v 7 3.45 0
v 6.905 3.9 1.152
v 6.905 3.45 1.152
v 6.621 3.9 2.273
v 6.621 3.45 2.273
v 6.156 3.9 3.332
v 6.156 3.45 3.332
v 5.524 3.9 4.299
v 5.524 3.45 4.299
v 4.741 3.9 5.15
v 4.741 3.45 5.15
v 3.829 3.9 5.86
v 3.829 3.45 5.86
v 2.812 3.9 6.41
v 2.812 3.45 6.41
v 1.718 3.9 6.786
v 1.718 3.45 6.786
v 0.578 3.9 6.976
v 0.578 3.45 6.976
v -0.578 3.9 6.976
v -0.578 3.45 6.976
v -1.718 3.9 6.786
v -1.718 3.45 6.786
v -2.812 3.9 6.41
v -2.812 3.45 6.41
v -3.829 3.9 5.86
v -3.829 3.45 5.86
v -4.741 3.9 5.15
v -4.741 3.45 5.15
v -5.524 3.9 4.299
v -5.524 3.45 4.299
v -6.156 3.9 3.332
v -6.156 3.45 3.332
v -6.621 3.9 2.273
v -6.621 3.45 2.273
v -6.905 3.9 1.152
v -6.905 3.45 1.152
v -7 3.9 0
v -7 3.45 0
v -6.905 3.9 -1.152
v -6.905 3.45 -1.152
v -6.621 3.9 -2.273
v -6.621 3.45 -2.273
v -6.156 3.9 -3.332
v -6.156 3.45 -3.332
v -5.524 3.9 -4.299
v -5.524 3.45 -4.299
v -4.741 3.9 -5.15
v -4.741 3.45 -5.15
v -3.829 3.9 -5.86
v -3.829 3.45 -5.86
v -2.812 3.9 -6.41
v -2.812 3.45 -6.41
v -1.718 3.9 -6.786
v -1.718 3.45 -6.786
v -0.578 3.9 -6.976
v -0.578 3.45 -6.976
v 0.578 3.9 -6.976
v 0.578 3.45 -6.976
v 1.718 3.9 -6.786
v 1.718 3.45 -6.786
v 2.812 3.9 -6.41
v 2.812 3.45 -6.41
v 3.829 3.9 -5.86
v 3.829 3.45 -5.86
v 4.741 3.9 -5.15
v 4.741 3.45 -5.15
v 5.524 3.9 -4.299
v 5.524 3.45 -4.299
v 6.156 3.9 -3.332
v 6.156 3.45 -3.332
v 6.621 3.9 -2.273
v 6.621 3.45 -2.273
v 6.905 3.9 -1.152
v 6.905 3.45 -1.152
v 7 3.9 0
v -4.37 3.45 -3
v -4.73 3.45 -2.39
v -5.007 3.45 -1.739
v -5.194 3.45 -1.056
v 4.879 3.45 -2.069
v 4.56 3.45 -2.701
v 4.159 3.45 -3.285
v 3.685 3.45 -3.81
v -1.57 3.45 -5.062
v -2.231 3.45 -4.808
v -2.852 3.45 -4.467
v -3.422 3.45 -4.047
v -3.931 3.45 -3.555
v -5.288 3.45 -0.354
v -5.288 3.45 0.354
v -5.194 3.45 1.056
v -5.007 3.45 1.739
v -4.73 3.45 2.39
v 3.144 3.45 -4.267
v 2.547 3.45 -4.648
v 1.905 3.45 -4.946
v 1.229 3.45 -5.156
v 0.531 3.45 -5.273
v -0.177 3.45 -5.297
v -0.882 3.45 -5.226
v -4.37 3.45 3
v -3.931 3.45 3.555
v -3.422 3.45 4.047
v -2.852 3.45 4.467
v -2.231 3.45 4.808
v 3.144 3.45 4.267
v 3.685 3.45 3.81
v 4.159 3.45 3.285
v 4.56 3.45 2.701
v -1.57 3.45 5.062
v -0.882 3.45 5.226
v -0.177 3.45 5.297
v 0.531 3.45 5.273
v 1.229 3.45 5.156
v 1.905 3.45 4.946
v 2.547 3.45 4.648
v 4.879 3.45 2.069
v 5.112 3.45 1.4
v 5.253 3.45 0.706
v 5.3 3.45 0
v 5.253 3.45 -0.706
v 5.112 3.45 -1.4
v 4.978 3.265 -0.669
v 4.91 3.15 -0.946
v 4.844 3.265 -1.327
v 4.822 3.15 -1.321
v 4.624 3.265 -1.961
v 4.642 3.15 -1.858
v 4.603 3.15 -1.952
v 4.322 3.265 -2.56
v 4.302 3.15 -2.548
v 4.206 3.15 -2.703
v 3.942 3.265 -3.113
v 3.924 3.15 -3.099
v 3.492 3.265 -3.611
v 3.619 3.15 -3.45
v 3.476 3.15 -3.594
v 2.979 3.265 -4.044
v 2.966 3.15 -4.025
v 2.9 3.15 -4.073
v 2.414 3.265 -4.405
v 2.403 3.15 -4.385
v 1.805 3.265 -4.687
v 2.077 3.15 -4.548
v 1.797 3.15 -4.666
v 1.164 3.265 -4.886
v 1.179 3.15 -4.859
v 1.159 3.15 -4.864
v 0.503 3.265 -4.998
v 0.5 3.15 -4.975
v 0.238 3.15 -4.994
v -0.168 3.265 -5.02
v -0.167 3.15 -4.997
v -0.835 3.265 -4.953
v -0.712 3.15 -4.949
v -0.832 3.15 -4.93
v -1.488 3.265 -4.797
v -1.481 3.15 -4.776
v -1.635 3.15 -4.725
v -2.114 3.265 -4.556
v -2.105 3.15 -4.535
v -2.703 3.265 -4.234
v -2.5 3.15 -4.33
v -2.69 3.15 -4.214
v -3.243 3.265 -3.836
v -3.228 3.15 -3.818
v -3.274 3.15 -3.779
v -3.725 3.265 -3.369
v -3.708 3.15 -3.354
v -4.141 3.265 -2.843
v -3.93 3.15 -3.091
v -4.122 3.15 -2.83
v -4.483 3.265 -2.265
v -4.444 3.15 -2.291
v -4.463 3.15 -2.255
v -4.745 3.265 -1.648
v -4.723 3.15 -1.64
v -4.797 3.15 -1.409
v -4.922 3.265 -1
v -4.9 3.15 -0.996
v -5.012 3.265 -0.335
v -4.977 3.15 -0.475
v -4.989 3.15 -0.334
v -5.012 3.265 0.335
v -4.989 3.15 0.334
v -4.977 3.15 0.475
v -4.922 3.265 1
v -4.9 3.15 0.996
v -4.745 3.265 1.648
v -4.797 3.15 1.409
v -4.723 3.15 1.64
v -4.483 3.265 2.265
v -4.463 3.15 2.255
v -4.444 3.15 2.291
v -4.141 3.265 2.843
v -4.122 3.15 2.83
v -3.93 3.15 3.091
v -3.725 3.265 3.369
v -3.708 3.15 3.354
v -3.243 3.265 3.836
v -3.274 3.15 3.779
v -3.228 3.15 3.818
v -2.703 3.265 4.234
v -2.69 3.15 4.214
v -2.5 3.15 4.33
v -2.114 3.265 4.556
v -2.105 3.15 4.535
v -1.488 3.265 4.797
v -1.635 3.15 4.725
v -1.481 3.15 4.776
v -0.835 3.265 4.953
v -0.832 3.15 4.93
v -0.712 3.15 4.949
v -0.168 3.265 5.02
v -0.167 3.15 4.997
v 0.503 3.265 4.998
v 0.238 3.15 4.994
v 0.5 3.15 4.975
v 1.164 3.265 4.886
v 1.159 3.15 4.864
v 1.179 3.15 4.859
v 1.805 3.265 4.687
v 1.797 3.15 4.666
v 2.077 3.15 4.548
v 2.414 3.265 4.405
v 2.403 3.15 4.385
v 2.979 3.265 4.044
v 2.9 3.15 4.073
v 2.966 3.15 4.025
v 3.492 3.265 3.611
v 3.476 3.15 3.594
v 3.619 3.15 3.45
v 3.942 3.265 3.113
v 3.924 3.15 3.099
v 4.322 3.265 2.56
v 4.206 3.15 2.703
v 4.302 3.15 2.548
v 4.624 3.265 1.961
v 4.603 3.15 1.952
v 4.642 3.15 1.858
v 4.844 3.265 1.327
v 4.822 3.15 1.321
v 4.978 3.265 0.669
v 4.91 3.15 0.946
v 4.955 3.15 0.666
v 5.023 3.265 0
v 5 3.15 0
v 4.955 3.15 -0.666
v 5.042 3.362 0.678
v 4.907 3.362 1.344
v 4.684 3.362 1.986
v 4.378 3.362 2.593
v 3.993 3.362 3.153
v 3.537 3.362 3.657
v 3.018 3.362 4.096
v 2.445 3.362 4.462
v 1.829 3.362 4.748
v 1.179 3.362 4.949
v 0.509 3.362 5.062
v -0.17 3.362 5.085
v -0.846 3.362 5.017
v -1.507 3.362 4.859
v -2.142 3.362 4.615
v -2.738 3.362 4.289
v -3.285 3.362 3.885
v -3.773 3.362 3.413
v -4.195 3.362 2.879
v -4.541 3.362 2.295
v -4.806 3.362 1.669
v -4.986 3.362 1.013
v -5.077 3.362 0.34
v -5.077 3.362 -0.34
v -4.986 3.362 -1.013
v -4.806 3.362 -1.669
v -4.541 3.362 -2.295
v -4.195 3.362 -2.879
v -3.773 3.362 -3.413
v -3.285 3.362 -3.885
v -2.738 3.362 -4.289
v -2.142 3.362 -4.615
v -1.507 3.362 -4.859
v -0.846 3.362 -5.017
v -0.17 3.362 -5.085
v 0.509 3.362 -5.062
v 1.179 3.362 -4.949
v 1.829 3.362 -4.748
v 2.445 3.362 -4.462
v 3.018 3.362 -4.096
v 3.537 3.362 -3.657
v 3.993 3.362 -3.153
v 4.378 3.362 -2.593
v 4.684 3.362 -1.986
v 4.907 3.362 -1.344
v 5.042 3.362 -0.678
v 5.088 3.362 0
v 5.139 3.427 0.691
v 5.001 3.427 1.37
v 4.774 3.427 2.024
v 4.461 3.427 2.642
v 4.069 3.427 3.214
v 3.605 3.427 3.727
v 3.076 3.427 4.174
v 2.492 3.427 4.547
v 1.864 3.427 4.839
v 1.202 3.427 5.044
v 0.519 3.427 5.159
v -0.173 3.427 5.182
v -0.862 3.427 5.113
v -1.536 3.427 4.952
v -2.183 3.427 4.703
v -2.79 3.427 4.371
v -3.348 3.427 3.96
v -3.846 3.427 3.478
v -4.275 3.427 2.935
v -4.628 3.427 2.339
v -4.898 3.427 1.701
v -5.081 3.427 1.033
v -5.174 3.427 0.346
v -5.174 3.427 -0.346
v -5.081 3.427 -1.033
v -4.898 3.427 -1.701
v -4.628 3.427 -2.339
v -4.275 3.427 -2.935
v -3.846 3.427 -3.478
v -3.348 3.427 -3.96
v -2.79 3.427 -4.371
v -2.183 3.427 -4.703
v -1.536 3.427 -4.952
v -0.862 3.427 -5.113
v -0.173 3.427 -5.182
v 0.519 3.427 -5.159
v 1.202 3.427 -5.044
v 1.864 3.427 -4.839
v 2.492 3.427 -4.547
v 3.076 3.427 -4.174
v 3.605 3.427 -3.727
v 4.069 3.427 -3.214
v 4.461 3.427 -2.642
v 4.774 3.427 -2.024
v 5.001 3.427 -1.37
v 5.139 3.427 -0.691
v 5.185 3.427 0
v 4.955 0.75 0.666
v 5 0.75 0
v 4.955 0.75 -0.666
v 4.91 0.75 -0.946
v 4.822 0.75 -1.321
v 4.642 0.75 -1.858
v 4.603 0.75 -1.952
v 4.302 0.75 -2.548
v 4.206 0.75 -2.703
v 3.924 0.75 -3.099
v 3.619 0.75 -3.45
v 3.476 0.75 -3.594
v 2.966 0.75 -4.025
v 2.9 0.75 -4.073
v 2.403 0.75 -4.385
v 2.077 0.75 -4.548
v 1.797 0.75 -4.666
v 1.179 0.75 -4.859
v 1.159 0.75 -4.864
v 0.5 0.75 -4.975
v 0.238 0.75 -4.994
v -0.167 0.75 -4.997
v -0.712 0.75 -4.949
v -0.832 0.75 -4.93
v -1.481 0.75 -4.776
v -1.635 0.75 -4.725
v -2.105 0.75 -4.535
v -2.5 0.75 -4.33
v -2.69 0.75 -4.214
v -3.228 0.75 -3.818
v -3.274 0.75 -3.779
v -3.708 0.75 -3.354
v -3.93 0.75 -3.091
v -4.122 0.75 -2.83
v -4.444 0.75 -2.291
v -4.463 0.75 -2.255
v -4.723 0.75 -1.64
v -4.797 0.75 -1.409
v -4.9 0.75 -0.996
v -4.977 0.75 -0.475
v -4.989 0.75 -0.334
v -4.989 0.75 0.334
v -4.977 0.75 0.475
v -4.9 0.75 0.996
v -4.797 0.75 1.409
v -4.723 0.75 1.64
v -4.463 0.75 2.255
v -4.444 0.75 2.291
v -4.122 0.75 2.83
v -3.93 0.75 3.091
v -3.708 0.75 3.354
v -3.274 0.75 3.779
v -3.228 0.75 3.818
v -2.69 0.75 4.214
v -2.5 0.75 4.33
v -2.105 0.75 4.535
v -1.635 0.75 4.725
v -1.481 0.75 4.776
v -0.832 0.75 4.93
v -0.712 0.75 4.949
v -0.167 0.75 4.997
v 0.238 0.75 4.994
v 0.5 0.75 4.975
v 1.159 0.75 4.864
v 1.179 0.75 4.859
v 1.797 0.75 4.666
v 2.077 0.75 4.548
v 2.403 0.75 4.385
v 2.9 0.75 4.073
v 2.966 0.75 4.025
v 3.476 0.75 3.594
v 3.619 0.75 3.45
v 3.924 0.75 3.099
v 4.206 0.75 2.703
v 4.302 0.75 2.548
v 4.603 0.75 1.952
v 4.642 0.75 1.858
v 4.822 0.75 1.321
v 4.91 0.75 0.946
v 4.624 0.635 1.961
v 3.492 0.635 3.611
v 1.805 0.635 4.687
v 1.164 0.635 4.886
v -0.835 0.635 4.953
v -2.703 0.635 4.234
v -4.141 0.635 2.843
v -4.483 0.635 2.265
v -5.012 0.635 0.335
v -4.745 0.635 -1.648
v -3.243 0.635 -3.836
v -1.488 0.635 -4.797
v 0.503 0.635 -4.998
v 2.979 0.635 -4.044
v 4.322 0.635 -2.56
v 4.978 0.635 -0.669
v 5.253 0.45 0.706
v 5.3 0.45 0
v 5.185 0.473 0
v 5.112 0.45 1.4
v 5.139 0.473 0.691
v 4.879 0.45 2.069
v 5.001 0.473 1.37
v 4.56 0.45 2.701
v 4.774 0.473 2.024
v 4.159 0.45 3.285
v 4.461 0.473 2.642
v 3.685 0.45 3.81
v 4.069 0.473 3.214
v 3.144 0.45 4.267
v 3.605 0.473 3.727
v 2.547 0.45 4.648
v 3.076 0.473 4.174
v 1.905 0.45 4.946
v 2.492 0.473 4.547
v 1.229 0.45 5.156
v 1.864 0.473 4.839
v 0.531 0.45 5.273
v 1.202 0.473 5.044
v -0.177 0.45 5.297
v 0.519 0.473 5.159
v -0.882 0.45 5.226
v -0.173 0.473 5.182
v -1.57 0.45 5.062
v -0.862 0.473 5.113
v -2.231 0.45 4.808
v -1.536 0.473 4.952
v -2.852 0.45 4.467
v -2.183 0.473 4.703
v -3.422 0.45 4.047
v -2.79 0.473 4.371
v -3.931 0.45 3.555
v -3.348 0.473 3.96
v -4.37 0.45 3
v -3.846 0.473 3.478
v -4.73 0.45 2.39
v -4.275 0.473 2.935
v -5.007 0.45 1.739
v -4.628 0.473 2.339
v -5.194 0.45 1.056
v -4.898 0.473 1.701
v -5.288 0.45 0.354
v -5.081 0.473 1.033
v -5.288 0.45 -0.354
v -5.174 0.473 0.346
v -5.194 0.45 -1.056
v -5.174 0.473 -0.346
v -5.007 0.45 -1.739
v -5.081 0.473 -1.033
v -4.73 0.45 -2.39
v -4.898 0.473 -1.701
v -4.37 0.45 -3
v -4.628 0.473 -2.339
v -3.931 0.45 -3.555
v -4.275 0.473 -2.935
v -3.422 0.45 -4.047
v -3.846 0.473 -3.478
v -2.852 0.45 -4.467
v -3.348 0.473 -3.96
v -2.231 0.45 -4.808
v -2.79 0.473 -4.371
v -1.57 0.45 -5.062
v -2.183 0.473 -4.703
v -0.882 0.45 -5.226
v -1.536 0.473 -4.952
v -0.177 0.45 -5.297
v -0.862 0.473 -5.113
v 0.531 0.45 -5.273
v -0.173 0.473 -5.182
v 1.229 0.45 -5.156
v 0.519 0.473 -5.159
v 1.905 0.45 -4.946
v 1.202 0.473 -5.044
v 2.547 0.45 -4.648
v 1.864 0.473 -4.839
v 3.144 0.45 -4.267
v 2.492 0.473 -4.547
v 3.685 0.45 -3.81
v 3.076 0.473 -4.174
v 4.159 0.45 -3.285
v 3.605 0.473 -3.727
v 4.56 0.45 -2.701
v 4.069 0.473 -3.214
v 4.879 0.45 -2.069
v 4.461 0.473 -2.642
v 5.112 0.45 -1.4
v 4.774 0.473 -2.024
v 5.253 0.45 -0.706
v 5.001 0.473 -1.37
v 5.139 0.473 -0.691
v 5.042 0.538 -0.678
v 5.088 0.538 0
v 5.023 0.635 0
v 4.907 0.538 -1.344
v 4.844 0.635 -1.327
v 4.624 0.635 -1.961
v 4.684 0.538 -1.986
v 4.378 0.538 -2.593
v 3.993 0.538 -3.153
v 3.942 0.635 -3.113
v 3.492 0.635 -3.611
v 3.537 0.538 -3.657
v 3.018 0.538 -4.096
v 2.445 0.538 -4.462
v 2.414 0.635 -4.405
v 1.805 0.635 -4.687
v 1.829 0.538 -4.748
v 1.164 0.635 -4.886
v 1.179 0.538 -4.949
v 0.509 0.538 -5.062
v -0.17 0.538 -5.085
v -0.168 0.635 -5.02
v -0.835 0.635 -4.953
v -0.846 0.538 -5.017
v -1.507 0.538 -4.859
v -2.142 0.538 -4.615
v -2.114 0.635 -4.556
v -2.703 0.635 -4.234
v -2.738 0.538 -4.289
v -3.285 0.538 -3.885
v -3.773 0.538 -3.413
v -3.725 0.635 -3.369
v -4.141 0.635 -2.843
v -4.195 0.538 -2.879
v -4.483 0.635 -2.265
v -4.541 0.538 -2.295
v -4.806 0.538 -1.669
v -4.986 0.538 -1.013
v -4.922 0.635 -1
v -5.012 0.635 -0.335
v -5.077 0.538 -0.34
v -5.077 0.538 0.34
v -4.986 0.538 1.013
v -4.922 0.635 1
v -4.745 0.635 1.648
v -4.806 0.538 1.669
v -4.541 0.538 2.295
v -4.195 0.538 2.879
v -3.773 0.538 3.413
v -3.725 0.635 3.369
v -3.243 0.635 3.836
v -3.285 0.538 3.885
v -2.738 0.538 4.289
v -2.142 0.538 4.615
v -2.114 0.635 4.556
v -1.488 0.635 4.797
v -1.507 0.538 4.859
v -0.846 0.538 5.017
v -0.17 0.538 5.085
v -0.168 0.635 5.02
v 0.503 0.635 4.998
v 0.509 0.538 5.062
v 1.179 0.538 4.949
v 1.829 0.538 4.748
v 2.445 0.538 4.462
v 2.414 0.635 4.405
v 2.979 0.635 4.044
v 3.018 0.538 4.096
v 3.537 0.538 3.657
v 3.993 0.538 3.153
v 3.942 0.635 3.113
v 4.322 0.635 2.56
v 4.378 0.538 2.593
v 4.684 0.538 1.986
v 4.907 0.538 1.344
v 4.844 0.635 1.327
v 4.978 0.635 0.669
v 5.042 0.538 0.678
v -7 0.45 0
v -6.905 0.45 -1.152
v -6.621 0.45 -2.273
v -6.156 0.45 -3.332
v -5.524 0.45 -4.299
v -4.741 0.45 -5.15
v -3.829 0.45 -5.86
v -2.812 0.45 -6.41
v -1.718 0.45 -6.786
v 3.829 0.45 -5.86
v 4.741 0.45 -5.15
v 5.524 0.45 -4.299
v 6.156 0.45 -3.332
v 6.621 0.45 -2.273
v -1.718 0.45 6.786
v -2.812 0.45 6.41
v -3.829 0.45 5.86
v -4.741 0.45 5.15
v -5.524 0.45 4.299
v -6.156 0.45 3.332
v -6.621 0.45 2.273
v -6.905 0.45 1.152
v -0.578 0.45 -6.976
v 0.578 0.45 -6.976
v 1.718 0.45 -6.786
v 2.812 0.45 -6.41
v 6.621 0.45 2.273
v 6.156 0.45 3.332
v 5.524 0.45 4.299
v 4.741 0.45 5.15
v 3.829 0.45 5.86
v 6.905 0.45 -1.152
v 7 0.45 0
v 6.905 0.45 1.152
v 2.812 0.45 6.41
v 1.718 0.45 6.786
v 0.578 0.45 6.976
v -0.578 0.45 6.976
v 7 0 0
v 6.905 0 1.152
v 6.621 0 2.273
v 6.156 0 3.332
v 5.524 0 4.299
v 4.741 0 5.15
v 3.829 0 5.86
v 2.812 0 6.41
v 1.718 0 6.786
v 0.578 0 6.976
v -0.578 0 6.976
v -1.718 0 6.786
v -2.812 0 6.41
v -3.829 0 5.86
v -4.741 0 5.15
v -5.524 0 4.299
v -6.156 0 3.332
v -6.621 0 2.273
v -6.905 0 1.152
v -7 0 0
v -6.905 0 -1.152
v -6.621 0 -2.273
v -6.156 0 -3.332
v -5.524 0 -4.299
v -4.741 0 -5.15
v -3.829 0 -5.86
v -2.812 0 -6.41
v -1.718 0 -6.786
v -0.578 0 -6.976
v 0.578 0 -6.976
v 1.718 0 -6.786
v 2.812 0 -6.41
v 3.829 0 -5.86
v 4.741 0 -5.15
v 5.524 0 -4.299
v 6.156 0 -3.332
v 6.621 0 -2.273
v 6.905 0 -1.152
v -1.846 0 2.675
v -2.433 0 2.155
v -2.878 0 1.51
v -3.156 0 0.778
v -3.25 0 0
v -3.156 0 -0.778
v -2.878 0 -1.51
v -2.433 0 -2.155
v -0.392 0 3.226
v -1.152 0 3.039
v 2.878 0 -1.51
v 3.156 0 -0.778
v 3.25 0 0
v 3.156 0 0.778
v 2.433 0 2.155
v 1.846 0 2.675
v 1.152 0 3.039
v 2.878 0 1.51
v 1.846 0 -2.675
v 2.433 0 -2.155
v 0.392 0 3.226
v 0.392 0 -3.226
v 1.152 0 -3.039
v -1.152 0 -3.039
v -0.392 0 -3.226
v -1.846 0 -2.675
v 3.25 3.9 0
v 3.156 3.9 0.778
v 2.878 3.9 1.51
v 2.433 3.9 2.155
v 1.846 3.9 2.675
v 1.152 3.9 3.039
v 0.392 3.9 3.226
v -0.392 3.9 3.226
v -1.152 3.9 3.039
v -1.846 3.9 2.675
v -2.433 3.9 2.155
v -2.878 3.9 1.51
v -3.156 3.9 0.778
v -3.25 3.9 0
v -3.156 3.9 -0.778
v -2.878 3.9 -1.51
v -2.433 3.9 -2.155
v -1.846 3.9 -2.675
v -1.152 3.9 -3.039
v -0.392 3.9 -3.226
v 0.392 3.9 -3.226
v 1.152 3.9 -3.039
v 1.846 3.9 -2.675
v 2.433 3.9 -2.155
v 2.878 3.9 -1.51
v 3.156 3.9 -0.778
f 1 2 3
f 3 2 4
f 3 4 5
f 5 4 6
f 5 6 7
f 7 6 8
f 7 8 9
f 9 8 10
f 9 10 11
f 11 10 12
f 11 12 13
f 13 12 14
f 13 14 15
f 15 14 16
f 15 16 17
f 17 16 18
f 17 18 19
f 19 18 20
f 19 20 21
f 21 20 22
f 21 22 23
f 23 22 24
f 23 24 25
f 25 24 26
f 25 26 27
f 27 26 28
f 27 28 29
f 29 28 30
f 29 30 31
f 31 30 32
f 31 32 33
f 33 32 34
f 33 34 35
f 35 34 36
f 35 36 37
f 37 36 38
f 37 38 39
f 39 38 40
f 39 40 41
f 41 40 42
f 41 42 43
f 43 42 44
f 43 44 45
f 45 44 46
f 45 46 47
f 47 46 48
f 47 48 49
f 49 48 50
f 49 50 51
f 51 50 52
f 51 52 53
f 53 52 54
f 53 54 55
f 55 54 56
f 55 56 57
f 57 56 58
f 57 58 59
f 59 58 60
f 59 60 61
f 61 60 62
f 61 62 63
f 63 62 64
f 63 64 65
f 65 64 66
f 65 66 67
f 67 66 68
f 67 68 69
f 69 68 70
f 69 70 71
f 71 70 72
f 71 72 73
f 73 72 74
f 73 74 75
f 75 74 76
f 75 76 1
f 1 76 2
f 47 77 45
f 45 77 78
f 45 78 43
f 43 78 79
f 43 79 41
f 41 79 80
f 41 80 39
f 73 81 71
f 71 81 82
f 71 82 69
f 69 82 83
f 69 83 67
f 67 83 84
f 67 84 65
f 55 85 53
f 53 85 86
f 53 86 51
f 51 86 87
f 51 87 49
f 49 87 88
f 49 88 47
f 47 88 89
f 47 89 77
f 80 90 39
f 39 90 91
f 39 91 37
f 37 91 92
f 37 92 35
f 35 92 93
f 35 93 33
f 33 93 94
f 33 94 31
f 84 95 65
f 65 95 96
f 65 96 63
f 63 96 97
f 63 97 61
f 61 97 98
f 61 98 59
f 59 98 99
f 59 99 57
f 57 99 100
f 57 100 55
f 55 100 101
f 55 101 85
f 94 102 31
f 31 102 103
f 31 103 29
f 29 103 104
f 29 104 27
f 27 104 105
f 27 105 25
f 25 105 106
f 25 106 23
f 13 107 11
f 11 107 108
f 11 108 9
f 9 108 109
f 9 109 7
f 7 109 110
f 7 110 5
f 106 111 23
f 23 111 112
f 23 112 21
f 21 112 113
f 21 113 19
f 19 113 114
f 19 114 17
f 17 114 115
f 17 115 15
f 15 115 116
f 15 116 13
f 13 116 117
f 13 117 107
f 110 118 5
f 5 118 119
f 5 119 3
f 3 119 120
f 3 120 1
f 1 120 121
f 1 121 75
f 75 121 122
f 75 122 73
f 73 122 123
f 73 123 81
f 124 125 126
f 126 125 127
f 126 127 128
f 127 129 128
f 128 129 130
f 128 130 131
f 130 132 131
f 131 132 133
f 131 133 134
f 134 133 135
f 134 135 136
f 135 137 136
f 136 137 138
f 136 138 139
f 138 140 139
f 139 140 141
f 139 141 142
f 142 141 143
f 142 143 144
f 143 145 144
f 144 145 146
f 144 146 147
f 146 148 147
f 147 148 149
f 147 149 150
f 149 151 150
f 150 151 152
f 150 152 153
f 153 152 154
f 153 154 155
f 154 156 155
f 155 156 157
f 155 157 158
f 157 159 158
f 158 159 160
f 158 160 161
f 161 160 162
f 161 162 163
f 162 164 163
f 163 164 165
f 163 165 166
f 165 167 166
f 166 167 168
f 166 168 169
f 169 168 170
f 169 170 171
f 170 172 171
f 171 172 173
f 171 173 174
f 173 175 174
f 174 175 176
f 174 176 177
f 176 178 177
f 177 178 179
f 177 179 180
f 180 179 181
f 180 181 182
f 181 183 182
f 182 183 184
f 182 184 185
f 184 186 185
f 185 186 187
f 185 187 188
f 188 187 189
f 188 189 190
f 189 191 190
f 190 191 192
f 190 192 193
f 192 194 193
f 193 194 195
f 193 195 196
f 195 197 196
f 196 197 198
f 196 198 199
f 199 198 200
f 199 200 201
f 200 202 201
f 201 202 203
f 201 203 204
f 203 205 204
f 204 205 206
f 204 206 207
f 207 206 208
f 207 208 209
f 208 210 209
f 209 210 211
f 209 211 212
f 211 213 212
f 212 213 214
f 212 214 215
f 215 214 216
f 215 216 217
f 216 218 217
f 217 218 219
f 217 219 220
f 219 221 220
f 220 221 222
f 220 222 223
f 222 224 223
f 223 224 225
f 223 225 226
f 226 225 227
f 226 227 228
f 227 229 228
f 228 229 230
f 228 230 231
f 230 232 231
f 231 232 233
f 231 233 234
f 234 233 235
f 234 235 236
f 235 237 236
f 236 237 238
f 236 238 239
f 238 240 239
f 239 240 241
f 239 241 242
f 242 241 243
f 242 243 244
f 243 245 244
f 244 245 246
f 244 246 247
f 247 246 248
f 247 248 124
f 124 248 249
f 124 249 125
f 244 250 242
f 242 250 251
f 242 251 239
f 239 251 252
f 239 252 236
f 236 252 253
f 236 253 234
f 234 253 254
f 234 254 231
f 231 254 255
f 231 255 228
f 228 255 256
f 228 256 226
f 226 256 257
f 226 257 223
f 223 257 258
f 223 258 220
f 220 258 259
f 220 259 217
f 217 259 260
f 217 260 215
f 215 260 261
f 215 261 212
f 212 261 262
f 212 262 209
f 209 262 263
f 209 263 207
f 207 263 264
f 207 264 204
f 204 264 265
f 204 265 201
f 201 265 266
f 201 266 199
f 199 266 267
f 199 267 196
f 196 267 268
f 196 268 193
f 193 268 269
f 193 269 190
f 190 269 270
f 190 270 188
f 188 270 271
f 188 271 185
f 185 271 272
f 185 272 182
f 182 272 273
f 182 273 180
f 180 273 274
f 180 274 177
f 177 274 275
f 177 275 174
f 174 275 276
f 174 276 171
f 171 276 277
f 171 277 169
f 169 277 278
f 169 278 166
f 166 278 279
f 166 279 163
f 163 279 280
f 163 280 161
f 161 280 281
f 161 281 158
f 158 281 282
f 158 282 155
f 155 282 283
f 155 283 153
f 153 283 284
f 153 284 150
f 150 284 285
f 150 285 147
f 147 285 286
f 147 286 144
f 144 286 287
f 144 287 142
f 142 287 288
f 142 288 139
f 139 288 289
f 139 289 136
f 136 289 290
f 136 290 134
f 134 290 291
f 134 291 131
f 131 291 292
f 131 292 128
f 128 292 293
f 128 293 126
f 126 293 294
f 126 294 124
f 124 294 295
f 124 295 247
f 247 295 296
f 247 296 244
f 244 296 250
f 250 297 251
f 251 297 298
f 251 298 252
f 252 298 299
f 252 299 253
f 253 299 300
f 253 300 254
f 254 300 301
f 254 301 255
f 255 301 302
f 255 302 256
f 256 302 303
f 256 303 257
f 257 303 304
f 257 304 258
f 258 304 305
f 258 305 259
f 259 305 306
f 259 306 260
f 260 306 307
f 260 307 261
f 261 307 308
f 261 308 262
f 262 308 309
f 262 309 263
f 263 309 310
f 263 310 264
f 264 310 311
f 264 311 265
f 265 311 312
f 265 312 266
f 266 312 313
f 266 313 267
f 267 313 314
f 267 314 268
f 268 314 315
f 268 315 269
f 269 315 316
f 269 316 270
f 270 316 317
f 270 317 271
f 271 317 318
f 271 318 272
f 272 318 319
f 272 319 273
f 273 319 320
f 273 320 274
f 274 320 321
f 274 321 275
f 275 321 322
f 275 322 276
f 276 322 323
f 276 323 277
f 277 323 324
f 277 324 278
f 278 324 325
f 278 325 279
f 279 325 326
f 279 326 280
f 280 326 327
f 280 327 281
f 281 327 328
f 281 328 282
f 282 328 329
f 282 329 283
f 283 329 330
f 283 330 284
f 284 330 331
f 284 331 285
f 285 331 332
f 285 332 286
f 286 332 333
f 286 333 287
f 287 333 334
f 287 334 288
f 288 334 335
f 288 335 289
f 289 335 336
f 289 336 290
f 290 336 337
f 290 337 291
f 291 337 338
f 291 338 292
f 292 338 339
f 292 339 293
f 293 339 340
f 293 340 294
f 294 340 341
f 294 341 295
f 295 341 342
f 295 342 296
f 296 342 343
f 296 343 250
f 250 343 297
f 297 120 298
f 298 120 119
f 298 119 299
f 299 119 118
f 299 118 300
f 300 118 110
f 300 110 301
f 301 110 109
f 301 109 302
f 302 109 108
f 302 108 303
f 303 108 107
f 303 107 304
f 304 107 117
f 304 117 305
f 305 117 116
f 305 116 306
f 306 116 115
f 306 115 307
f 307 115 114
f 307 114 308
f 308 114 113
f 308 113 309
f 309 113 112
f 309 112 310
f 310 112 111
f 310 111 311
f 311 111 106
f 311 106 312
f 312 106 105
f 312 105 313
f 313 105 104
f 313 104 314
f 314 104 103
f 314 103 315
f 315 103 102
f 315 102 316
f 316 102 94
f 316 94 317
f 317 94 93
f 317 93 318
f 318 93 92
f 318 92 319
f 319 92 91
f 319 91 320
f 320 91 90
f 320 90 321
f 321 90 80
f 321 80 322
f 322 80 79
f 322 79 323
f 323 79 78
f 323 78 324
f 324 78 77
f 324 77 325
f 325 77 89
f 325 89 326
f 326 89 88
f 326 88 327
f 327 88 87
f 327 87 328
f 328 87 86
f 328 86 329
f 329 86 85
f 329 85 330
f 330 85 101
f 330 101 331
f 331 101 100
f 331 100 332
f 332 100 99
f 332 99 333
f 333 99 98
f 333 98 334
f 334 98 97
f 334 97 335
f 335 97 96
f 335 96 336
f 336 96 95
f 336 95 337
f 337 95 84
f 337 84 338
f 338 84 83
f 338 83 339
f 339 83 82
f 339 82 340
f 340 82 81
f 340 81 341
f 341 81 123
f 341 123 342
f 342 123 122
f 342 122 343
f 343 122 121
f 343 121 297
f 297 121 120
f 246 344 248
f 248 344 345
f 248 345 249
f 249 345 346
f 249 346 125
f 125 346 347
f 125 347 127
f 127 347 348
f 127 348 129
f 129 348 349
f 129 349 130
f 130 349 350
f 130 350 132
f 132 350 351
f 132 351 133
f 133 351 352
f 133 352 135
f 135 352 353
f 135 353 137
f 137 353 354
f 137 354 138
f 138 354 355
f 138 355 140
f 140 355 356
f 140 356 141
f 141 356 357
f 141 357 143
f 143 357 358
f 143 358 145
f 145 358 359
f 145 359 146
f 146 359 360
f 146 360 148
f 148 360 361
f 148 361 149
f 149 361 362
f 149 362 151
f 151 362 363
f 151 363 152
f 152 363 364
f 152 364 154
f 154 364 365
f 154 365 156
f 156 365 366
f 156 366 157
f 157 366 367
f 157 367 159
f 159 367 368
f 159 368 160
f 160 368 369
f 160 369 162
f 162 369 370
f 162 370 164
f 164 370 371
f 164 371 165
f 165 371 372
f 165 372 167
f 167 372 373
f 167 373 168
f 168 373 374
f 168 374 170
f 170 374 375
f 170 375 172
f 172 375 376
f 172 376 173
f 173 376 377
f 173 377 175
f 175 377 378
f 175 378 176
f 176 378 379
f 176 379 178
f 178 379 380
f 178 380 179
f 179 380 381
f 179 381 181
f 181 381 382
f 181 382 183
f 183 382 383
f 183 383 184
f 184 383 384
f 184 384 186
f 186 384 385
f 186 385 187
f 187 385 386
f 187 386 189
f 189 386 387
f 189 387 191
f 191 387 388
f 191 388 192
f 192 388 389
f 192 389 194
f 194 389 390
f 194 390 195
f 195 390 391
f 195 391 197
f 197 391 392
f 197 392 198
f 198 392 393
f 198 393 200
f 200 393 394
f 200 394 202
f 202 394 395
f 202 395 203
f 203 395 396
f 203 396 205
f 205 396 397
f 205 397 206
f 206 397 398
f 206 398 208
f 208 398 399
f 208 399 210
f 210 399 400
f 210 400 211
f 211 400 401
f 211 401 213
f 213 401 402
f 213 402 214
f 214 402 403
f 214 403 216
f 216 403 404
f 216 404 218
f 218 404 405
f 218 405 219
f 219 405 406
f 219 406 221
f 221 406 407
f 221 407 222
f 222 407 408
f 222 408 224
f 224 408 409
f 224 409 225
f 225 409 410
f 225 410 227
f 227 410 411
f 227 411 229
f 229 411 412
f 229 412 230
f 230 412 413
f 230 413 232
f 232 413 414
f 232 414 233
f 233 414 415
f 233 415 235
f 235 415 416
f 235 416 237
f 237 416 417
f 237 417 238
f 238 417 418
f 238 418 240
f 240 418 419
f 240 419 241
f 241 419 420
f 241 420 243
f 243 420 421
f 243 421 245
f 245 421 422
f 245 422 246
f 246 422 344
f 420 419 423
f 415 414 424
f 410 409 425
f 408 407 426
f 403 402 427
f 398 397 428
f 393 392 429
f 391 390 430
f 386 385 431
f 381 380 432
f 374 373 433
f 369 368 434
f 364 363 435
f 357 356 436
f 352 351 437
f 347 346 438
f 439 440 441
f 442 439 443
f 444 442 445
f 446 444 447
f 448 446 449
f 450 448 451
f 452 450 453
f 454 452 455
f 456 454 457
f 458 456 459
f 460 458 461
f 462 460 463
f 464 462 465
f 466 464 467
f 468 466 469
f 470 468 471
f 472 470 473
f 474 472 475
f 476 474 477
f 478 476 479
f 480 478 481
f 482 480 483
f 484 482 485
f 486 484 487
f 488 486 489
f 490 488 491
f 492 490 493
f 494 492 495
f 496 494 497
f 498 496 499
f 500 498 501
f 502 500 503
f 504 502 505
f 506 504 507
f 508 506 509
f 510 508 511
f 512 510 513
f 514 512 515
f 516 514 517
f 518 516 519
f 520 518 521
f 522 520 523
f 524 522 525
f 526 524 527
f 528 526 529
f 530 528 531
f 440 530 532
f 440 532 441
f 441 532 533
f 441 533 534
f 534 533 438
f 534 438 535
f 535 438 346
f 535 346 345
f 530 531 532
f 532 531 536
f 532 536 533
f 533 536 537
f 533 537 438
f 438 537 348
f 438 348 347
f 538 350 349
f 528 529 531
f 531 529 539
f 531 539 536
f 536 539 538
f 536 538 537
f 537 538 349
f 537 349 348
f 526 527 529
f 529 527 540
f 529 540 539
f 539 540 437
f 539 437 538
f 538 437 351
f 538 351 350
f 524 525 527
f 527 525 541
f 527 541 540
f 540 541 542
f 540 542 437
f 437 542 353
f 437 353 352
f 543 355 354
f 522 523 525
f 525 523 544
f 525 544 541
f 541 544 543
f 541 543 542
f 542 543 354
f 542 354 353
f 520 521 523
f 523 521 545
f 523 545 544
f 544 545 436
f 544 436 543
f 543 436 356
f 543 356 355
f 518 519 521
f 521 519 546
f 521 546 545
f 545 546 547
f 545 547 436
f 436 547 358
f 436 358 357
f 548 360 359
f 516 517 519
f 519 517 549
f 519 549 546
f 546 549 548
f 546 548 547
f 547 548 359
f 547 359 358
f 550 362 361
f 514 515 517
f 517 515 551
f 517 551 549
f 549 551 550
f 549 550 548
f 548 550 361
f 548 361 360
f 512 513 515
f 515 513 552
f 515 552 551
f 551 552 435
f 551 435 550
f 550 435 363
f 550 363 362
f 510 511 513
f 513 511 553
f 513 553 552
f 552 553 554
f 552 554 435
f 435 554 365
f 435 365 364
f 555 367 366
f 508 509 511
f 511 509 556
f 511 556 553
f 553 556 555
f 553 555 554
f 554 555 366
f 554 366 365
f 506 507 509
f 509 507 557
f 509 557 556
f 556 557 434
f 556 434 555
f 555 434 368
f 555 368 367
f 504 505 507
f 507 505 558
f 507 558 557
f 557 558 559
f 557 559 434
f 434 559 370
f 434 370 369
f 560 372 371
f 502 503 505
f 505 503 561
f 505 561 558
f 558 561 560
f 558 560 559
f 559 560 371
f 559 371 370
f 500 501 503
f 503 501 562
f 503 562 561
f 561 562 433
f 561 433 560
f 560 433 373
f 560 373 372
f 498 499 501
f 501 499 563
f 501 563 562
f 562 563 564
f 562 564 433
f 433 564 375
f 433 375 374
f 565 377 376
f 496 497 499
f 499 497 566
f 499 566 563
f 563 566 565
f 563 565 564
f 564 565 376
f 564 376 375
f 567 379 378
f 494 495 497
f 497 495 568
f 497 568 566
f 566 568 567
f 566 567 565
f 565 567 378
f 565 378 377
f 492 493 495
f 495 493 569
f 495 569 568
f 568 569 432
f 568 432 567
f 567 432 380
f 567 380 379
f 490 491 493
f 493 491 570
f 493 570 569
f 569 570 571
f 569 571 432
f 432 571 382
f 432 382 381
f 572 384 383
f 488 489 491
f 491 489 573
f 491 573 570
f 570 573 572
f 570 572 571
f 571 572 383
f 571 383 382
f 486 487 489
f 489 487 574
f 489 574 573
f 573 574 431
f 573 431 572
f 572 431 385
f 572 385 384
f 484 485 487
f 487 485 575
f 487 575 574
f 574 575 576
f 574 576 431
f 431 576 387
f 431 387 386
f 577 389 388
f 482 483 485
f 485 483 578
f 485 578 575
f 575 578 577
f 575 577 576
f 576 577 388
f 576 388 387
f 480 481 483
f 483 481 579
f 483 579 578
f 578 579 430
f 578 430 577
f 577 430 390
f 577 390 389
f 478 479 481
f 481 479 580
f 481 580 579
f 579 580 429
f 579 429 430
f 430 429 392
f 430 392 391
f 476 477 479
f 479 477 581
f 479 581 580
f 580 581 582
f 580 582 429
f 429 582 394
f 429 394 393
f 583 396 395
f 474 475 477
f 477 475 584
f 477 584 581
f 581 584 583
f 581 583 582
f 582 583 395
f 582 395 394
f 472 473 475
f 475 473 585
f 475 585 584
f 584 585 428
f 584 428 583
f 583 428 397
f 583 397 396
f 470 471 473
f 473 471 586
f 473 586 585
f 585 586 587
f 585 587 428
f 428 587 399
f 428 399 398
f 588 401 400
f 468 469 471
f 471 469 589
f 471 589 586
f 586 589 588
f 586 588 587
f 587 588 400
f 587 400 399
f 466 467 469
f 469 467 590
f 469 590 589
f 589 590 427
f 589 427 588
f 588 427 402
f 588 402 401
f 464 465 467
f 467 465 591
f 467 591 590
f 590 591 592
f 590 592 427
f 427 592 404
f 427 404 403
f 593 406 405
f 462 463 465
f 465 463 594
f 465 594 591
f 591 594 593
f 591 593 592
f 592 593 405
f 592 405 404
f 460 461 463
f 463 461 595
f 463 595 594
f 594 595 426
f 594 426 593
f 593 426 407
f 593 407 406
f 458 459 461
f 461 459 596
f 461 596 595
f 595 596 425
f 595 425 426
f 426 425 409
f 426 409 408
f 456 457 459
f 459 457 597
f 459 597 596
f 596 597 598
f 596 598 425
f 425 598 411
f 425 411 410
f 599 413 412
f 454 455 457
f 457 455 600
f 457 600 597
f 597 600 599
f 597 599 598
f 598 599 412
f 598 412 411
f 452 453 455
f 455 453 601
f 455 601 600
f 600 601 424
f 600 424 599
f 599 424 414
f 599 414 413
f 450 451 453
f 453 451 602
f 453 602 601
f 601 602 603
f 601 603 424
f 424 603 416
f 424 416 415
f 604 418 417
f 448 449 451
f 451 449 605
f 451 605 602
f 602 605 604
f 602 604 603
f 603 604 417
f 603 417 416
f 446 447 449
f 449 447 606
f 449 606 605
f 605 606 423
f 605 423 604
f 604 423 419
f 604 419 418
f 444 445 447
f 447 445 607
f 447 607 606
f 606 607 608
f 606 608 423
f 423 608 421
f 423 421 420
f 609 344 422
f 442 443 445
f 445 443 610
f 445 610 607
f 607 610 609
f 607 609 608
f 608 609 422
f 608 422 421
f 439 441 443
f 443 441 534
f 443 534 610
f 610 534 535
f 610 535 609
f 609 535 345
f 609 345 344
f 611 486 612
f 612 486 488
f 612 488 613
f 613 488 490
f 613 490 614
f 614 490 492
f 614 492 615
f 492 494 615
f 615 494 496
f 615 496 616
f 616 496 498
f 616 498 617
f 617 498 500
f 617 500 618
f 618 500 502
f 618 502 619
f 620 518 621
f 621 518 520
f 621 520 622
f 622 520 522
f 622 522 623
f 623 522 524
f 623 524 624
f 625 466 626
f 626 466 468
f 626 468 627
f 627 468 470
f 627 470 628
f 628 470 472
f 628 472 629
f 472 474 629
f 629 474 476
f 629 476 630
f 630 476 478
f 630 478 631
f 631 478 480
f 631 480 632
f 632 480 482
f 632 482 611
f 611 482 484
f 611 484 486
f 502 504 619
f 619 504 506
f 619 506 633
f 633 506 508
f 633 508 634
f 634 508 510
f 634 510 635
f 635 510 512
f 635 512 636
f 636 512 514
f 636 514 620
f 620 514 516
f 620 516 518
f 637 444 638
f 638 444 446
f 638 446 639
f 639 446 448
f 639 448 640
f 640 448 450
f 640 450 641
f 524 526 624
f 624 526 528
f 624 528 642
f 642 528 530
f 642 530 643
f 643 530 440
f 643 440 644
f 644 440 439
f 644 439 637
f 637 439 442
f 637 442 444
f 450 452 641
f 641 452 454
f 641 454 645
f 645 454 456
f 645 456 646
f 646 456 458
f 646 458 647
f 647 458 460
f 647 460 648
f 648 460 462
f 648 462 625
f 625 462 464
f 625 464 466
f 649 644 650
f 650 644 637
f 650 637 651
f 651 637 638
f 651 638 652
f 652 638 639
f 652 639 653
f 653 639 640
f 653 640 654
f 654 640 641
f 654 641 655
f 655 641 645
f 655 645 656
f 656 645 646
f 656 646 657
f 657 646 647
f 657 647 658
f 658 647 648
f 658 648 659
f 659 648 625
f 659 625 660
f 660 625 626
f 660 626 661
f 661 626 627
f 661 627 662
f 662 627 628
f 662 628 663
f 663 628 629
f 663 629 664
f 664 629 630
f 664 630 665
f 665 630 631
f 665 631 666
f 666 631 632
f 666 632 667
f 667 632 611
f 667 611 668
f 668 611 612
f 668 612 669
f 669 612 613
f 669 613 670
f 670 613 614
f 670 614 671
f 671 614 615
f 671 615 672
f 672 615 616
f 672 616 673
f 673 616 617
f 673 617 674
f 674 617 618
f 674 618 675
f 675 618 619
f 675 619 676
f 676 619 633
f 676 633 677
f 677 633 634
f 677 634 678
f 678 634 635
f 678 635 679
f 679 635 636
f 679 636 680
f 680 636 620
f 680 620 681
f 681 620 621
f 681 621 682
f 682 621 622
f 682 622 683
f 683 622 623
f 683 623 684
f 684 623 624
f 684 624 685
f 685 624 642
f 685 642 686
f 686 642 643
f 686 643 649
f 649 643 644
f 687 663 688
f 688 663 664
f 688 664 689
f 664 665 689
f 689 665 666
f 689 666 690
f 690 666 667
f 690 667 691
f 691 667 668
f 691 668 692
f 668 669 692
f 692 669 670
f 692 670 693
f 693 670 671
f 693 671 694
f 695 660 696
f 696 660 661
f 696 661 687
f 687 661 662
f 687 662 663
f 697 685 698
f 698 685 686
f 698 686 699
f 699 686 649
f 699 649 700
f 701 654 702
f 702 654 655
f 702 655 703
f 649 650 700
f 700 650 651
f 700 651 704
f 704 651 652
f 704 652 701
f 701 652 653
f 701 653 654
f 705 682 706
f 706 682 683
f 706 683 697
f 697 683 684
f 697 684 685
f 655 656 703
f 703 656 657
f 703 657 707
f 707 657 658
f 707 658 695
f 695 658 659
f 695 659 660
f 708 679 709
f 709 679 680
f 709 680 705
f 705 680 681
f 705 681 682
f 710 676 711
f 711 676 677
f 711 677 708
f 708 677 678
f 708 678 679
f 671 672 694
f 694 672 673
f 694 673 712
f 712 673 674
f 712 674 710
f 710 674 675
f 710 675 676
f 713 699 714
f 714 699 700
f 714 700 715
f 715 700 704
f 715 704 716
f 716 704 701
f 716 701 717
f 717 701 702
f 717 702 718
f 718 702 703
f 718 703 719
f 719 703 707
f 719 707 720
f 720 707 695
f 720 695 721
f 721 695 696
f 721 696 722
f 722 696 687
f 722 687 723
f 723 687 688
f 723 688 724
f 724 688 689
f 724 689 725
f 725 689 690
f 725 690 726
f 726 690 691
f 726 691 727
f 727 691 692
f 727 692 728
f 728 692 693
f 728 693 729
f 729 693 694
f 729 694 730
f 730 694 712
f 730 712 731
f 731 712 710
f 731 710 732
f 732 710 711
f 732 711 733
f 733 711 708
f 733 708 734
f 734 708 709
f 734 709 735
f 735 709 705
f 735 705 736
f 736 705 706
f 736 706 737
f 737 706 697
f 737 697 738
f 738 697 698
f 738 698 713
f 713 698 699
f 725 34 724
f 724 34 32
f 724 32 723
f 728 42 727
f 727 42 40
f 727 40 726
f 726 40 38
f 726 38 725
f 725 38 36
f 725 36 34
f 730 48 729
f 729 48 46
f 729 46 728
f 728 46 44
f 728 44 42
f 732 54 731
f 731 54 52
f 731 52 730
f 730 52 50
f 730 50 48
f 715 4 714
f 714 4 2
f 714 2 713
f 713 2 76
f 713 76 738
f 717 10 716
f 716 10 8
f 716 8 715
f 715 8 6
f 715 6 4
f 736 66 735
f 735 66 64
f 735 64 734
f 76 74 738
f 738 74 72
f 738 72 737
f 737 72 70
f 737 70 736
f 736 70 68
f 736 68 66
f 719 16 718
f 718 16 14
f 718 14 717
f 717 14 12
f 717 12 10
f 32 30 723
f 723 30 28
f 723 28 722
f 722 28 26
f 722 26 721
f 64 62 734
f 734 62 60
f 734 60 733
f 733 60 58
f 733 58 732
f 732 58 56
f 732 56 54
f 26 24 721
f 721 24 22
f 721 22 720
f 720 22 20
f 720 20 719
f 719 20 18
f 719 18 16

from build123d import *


with BuildPart() as part:
    # ｽｹｯﾁ1 → 回転1 (revolve)
    with BuildSketch(Plane.XY):
        with BuildLine():
            Line((7, 3.45), (5.3, 3.45))
            ThreePointArc((5.3, 3.45), (5.087867966, 3.362132034), (5, 3.15))
            Line((5, 3.15), (5, 0.75))
            ThreePointArc((5, 0.75), (5.087867966, 0.537867966), (5.3, 0.45))
            Line((5.3, 0.45), (7, 0.45))
            Line((7, 0.45), (7, 0))
            Line((7, 0), (3.25, 0))
            Line((3.25, 0), (3.25, 3.9))
            Line((3.25, 3.9), (7, 3.9))
            Line((7, 3.9), (7, 3.45))
        make_face()
    revolve(axis=Axis((0, 1.95, 0), (0, 1, 0)))


solid = part.part
